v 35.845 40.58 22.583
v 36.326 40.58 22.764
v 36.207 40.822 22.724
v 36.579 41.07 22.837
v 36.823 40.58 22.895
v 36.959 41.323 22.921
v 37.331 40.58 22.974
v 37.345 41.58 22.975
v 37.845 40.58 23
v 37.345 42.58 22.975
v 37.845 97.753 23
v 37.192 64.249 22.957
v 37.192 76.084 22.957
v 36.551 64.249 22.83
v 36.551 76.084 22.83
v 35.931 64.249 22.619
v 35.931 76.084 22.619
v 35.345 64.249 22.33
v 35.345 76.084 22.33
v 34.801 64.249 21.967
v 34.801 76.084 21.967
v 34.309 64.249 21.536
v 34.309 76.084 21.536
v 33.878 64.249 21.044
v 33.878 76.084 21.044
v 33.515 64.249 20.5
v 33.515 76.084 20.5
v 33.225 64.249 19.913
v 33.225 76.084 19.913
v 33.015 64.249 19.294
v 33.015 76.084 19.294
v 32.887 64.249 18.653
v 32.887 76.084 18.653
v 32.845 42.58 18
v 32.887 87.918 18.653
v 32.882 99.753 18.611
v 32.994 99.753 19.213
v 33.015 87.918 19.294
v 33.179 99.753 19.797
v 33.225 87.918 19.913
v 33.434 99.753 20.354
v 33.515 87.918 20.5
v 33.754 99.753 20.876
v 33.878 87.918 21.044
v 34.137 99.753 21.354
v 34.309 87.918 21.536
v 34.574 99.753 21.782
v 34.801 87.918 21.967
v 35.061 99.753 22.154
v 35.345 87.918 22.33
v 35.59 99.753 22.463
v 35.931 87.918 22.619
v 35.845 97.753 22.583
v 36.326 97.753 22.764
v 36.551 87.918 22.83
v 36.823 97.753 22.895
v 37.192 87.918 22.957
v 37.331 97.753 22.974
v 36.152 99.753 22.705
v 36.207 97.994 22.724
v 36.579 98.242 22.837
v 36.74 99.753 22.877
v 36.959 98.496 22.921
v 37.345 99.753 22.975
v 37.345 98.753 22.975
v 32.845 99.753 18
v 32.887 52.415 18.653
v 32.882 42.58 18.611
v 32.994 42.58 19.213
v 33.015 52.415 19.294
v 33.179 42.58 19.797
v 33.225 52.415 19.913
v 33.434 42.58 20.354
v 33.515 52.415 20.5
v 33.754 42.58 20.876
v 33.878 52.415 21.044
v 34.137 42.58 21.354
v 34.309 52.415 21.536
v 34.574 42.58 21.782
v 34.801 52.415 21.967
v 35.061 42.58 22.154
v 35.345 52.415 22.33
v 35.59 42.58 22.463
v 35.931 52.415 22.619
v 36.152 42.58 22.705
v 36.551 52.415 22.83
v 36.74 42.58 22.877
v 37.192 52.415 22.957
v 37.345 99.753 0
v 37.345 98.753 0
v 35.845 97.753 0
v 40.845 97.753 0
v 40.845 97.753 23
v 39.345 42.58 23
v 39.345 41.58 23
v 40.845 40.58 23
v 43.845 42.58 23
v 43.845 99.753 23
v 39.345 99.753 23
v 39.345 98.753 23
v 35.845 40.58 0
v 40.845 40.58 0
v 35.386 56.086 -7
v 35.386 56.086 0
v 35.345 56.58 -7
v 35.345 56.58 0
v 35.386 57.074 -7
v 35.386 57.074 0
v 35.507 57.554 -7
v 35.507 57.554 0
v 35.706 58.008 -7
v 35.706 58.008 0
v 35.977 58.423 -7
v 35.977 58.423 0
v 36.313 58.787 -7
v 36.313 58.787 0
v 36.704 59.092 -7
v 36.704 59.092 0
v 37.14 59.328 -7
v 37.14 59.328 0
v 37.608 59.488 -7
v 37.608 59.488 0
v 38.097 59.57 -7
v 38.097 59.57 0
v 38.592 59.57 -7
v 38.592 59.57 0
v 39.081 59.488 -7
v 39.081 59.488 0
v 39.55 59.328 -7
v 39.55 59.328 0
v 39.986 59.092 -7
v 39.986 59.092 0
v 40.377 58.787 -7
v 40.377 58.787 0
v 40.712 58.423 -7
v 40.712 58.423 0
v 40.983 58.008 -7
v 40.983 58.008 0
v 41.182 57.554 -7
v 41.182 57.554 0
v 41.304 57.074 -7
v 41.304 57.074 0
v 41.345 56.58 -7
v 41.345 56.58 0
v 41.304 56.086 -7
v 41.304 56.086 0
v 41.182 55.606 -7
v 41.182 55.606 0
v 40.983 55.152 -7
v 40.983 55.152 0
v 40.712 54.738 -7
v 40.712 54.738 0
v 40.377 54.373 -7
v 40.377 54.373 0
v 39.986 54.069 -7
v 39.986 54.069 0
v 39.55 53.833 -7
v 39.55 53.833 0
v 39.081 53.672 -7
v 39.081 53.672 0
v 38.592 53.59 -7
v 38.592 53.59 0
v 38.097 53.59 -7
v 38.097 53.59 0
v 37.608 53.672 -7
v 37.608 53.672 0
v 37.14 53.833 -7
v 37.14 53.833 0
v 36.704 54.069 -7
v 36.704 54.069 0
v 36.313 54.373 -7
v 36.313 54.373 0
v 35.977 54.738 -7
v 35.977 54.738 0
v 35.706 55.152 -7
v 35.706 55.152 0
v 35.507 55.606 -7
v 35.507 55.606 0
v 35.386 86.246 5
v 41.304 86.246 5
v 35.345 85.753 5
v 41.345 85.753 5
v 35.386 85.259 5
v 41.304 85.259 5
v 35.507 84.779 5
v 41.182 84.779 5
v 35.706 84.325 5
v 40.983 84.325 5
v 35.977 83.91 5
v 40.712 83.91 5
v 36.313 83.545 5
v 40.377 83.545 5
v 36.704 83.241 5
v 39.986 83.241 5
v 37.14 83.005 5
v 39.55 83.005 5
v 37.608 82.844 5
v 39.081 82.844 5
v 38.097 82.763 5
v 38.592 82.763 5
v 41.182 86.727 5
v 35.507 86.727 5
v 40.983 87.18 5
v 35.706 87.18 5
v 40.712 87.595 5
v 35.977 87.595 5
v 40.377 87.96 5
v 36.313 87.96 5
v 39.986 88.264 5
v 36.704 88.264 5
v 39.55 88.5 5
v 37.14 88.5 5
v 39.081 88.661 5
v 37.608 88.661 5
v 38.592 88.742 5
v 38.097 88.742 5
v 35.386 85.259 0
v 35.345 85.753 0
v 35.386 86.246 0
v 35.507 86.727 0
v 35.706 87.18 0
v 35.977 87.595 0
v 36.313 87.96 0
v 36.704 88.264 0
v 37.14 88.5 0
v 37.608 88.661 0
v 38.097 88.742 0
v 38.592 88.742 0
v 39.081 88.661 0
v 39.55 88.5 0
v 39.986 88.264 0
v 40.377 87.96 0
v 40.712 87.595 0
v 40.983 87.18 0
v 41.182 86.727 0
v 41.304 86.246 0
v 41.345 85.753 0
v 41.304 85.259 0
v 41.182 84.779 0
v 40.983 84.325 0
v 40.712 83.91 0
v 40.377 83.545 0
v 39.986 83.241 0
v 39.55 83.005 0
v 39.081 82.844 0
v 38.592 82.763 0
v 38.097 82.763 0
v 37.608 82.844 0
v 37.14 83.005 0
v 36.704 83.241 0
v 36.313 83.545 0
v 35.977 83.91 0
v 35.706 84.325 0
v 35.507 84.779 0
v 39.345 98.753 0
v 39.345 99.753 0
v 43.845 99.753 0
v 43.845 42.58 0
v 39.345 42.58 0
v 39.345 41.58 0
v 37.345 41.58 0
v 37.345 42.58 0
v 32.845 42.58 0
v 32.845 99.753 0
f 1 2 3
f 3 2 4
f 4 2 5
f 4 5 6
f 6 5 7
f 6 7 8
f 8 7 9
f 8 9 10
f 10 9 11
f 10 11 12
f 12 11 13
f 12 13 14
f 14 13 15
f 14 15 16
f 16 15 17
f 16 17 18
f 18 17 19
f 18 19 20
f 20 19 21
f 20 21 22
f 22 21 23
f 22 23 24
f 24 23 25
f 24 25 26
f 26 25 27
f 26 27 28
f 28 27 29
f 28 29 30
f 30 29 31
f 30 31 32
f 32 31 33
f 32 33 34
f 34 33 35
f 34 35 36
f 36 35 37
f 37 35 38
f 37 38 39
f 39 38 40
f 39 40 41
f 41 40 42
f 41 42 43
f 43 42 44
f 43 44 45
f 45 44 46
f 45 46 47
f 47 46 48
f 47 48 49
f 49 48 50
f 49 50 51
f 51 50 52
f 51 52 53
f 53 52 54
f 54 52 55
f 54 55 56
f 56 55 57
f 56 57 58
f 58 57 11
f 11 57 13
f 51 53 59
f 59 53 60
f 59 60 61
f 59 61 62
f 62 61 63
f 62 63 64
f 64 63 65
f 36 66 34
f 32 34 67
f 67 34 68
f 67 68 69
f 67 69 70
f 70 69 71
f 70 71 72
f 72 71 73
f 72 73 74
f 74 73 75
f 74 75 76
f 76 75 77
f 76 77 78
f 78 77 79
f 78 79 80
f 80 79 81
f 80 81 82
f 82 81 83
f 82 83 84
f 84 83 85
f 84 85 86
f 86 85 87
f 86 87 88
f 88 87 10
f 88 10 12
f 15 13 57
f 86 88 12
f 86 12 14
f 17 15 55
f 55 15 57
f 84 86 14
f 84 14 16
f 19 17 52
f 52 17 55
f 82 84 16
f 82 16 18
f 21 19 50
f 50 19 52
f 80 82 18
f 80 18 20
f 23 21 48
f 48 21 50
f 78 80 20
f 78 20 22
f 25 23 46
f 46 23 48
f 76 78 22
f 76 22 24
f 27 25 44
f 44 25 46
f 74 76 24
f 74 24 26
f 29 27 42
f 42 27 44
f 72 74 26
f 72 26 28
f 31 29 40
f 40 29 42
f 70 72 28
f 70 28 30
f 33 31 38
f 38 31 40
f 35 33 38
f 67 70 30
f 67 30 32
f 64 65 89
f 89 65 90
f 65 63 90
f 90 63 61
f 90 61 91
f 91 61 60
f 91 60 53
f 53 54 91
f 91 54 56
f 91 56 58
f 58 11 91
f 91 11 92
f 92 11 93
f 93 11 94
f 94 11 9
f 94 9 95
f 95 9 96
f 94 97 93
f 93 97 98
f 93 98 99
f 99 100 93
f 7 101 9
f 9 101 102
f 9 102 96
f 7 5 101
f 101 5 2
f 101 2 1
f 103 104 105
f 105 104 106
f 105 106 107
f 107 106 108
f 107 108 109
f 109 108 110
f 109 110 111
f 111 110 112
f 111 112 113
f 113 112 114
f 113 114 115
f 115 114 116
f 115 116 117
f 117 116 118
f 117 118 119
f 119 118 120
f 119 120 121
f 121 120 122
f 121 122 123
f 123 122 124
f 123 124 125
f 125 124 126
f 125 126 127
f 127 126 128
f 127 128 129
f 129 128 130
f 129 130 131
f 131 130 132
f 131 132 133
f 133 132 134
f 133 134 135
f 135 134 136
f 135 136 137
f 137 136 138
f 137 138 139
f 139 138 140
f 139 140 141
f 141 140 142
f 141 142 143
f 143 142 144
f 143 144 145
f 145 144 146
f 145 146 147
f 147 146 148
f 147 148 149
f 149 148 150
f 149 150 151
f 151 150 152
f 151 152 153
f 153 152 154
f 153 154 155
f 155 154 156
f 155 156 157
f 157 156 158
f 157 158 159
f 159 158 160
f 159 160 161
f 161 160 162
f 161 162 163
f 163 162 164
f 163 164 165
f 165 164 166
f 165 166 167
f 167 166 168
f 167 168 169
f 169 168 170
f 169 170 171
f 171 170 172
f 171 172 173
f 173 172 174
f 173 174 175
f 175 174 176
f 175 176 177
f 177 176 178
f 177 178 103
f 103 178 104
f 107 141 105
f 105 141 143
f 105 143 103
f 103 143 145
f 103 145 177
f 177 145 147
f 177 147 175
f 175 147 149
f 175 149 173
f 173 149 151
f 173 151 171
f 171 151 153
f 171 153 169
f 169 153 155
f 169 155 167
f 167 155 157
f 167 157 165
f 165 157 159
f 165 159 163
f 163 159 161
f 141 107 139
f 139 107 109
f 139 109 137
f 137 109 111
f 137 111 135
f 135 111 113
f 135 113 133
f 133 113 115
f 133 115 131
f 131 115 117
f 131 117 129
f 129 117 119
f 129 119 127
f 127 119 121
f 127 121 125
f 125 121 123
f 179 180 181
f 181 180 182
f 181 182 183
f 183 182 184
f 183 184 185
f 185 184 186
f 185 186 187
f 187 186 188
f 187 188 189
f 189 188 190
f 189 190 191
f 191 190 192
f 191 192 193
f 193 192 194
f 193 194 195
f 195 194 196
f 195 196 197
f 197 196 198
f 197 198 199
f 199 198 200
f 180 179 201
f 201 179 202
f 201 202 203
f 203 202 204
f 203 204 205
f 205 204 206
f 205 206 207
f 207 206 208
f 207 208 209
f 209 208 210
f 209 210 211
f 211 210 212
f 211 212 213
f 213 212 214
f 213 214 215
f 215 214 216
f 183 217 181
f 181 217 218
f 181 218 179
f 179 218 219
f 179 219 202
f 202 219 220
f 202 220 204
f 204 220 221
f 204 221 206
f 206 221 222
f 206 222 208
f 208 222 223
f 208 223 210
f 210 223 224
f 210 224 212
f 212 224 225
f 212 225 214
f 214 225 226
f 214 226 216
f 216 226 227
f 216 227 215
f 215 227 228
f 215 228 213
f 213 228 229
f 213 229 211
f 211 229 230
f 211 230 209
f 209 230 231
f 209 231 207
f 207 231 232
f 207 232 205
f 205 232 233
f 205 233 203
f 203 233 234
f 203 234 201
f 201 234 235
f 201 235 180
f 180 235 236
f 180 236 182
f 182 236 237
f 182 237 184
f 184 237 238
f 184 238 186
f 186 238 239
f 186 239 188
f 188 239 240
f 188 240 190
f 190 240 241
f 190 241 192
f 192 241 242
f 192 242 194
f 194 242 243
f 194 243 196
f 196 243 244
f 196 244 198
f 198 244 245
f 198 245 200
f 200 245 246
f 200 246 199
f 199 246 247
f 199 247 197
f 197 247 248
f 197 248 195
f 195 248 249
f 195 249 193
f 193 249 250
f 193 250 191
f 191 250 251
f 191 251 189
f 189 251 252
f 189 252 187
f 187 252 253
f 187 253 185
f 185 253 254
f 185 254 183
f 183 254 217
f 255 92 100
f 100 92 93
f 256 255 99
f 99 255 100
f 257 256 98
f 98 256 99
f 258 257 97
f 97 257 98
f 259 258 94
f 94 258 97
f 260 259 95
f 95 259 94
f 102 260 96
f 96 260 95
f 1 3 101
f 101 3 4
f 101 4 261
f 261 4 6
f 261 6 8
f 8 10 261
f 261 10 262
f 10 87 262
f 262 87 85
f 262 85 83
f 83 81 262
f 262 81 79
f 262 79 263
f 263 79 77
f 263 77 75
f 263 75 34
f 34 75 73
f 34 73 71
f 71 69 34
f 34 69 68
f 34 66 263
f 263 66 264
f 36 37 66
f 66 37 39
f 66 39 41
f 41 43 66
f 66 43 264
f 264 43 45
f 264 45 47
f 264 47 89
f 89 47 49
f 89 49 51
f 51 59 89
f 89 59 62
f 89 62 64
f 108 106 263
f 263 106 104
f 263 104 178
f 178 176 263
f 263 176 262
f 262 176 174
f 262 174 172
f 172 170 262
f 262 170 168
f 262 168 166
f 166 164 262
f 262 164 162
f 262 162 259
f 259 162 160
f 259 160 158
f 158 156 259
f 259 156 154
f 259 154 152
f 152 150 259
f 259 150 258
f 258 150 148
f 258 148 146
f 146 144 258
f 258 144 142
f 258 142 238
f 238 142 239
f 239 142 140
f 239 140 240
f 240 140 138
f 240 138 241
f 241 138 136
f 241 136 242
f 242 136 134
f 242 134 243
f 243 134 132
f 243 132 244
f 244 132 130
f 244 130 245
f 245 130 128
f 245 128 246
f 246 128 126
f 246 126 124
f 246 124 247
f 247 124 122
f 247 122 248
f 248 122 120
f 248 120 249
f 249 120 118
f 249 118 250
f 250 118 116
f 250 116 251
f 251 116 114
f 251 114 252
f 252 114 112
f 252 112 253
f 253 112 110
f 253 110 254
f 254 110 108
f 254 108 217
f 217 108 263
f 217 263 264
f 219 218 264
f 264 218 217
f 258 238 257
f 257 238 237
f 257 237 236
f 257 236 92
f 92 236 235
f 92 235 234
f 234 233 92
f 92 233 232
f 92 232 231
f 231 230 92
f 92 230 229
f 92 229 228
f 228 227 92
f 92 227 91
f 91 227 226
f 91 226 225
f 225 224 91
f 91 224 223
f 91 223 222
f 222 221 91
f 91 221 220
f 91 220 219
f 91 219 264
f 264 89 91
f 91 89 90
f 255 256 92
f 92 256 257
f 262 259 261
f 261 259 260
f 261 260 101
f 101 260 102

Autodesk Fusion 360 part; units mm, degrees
sketch "Poarta Dreapta Sus" plane through (0, 0, 0) normal (0, 0, 1) x (1, 0, 0)
  line L0 (39.3447, 42.5803) -> (39.3447, 41.5803)
  line L1 (40.8447, 40.5803) -> (39.3447, 41.5803)
  line L2 (40.8447, 40.5803) -> (35.8447, 40.5803)
  line L3 (37.3447, 41.5803) -> (35.8447, 40.5803)
  line L4 (37.3447, 42.5803) -> (37.3447, 41.5803)
  circle A0 centre (38.3447, 56.5803) radius 3
  circle A1 centre (38.3447, 56.5803) radius 5.5
  circle A2 centre (38.3447, 85.7526) radius 5.5
  circle A3 centre (38.3447, 85.7526) radius 3
  line L5 (43.8447, 99.7526) -> (32.8447, 99.7526)
  line L6 (43.8447, 99.7526) -> (43.8447, 42.5803)
  line L7 (32.8447, 99.7526) -> (32.8447, 42.5803)
  line L8 (43.8447, 42.5803) -> (32.8447, 42.5803)
  line L9 (39.3447, 99.7526) -> (39.3447, 98.7526)
  line L10 (37.3447, 99.7526) -> (37.3447, 98.7526)
  line L11 (40.8447, 97.7526) -> (35.8447, 97.7526)
  line L12 (38.3447, 99.7526) -> (38.3447, 97.7526) construction
  line L13 (39.3447, 98.7526) -> (40.8447, 97.7526)
  line L14 (37.3447, 98.7526) -> (35.8447, 97.7526)
  point P0 (38.3447, 99.7526)
  dimension "d718" = 1
  dimension "d719" = 1
  dimension "d720" = 2
  dimension "d721" = 2.5
  dimension "d722" = 6
  dimension "d723" = 57.1723
  dimension "d724" = 5
  dimension "d725" = 32.8447
  dimension "d726" = 42.5803
  dimension "d727" = 2
  dimension "d728" = 3
  dimension "d729" = 14
  dimension "d730" = 43.1723
  dimension "d731" = 1
  dimension "d732" = 1
  dimension "d733" = 5
  dimension "d734" = 2
extrude "Extrude1" add sketch "Poarta Dreapta Sus" along normal blind 23 contours A1 L6 L7 L8 | L0 L1 L2 L3 L4 L8 | A1 | A1 A2 L6 L7 | A2 | A2 L5 L6 L7 L9 L10 L11 L13 L14
extrude "Extrude2" add sketch "Poarta Dreapta Sus" along normal blind 18 from surface at 5 contours A3
extrude "Extrude3" add sketch "Poarta Dreapta Sus" along normal blind 23 contours A0
extrude "Extrude4" add sketch "Poarta Dreapta Sus" against normal blind 7 contours A0
fillet "Fillet1" radius 5 2 edges at (32.8447, 71.1664, 23) (32.8447, 71.1664, 23)
